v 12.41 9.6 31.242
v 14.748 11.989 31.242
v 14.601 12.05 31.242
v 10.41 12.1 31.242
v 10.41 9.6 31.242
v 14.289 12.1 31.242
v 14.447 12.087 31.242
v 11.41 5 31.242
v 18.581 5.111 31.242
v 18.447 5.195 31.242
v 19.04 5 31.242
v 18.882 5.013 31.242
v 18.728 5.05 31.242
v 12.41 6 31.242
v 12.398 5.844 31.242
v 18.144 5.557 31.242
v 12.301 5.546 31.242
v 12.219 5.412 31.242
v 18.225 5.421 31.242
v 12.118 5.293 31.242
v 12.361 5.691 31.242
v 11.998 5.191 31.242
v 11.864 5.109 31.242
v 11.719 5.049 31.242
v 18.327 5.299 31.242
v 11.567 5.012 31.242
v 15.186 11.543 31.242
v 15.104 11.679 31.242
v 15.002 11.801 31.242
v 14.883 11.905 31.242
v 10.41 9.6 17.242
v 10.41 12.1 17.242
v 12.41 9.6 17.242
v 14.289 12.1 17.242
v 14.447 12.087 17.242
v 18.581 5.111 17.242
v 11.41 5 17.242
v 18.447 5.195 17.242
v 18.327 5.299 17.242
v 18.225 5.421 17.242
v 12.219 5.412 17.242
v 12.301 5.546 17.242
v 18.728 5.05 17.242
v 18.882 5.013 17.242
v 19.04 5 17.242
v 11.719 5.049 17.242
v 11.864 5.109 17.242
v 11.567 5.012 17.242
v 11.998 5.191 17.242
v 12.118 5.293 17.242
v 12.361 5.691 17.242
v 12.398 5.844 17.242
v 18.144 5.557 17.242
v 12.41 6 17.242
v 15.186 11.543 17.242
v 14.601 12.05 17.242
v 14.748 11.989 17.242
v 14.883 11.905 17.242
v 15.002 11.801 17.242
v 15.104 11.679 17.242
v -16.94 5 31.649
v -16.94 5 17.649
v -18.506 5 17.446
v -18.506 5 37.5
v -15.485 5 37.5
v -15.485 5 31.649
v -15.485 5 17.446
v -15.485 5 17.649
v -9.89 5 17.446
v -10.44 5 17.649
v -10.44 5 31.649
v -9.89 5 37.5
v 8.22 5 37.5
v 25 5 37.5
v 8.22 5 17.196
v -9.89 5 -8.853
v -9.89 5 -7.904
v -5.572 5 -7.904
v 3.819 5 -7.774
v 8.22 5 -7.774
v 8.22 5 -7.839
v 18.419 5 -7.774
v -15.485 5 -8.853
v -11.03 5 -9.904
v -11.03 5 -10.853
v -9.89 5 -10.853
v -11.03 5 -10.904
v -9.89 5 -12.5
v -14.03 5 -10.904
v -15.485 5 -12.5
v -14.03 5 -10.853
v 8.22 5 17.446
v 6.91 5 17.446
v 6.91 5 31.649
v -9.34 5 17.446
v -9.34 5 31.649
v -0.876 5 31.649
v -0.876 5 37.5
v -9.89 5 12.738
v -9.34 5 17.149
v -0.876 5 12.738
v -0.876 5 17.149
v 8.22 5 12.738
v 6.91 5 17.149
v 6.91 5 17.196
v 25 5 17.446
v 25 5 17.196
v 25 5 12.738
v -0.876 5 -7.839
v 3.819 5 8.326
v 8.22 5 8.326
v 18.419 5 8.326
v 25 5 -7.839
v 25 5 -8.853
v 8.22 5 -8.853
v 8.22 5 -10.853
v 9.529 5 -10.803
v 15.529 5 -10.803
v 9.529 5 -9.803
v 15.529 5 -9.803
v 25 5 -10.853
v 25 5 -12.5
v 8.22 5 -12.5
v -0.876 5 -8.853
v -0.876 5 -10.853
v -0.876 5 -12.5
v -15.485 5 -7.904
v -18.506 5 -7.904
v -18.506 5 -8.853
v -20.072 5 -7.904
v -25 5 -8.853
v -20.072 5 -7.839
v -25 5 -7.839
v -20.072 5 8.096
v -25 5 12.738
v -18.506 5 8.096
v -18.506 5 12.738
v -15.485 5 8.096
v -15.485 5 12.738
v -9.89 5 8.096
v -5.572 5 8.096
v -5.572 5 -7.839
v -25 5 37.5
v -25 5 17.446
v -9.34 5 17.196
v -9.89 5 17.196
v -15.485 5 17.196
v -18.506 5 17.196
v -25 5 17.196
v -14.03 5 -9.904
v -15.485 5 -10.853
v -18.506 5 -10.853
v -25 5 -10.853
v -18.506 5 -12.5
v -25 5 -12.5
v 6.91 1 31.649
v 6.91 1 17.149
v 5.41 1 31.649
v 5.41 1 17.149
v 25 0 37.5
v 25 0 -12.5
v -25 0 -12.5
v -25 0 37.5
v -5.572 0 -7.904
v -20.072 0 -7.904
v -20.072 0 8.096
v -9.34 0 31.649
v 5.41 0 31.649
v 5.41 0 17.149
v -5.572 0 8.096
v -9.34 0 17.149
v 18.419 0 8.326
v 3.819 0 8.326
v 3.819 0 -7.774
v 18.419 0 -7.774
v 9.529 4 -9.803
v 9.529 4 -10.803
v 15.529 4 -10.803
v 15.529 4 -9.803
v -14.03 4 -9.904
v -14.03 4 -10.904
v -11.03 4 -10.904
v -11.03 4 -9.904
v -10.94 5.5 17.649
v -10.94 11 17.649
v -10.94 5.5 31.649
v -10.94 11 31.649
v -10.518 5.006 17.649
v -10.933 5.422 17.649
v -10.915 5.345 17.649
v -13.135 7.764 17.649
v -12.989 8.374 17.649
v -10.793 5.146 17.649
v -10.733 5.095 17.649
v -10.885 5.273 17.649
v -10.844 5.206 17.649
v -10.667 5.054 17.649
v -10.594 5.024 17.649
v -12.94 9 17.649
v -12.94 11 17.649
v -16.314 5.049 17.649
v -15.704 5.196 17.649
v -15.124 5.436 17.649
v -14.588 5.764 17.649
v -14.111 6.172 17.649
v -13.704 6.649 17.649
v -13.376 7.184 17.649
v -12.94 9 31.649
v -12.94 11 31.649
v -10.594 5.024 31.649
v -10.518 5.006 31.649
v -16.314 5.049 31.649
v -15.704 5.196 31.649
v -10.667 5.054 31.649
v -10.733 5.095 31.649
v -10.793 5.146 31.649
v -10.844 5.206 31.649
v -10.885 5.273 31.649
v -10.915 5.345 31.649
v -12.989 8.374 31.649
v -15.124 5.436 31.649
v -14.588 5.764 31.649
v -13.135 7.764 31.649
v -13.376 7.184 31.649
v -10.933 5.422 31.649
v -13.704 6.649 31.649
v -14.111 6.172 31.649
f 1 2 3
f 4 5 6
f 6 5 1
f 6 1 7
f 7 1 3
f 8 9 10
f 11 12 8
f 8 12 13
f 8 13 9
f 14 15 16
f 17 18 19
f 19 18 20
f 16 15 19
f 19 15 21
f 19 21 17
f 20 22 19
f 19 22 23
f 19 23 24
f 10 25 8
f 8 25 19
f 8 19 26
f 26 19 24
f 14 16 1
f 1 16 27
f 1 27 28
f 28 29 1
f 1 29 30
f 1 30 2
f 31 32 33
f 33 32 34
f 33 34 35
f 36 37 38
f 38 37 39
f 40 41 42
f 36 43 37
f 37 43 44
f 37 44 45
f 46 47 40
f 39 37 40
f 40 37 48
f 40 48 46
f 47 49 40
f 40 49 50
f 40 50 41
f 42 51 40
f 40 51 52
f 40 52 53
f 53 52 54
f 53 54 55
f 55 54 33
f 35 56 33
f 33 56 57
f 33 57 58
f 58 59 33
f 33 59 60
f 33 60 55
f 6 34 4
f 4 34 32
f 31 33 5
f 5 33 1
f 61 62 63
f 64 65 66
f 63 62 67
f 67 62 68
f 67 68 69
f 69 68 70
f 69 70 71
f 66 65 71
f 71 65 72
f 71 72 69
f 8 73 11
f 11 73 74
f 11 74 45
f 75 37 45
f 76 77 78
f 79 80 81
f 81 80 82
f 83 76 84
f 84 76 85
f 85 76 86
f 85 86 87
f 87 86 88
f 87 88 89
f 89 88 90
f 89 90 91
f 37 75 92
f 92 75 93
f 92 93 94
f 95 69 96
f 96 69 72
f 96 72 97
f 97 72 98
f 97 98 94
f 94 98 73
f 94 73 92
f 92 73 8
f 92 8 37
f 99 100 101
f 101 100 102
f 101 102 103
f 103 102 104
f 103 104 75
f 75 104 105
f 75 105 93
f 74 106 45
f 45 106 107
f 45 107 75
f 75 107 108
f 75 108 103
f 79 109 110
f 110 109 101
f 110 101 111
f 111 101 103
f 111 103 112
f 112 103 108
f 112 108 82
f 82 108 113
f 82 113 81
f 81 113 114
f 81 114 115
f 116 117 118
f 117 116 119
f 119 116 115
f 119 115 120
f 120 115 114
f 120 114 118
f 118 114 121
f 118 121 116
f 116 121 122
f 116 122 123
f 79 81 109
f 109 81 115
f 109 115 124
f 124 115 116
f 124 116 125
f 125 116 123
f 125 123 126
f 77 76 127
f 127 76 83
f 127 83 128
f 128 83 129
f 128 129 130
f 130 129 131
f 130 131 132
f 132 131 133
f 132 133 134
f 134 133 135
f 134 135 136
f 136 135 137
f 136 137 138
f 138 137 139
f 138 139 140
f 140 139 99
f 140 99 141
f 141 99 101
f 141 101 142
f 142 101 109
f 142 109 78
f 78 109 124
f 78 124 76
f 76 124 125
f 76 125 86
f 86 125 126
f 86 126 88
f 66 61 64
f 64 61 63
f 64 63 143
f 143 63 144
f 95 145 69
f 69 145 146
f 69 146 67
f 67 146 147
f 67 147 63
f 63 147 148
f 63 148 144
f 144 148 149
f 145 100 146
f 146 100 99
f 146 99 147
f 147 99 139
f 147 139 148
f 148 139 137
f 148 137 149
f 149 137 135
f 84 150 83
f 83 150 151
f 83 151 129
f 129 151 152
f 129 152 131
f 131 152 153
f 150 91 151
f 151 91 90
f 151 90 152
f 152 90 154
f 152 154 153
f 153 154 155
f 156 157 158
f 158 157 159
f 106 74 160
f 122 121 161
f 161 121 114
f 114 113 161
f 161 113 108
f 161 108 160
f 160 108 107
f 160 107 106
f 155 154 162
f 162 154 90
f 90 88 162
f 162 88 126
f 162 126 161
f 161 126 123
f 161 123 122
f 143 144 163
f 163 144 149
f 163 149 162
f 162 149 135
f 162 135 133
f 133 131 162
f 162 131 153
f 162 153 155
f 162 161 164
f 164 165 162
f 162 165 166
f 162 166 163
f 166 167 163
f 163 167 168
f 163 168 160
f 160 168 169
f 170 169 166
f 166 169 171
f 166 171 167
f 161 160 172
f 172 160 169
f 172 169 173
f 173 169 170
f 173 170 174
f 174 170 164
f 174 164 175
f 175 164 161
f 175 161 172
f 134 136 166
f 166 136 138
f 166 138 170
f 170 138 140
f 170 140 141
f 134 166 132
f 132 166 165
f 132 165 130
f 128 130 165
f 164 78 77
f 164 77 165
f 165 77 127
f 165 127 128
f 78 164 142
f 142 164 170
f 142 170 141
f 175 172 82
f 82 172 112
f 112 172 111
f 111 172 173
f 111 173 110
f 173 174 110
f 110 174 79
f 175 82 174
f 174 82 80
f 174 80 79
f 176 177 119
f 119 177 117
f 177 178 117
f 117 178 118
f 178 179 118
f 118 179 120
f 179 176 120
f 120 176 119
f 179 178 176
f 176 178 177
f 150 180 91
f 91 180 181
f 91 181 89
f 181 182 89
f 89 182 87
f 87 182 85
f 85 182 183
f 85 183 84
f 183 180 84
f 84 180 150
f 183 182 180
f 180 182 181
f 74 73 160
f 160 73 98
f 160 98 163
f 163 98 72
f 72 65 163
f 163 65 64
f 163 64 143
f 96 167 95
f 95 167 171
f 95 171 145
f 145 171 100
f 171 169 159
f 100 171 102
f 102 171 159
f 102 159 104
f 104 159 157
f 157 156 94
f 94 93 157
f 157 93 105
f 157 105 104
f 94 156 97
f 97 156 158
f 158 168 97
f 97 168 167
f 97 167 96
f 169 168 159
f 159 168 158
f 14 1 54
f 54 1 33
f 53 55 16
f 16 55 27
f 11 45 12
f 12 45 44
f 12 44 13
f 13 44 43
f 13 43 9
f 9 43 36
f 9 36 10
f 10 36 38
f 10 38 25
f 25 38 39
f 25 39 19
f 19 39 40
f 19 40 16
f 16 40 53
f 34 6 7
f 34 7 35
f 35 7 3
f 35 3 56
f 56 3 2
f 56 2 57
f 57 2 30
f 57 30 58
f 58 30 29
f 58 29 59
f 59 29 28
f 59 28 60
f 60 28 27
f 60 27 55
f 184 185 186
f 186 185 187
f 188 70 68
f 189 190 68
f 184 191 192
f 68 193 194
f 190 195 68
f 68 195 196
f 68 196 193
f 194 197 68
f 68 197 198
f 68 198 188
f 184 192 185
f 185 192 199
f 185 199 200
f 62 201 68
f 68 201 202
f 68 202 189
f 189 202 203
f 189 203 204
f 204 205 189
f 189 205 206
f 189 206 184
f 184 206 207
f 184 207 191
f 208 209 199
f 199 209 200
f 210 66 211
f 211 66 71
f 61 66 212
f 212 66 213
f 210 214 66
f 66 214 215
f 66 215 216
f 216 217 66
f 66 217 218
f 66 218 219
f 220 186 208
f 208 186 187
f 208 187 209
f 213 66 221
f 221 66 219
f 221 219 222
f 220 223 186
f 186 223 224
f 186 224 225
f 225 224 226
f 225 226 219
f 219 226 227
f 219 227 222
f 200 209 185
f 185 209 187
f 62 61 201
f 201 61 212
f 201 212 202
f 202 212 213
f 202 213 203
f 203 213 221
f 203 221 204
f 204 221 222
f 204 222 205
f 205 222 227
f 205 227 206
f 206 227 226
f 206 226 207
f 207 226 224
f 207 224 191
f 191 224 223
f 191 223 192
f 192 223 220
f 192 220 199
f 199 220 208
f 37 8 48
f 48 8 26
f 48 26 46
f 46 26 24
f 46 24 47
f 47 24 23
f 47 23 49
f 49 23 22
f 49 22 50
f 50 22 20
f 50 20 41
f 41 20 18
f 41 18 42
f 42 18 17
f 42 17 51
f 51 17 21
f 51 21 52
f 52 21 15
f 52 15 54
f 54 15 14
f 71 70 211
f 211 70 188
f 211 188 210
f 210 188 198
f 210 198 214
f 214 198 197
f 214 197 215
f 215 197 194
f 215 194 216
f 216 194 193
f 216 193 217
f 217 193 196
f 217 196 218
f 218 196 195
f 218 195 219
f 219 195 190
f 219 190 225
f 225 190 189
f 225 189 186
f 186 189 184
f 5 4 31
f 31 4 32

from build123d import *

# Parameters (mm, degrees)
SKETCH1_W           = 50
SKETCH1_H           = 25
BOSS_EXTRUDE1_DEPTH = 5
SKETCH2_W           = 14.5
SKETCH2_H           = 16
CUT_EXTRUDE1_DEPTH  = 5
SKETCH3_W           = 14.6
SKETCH3_H           = 16.1
CUT_EXTRUDE2_DEPTH  = 5
SKETCH5_W           = 3
SKETCH5_H           = 1
SKETCH5_W_2         = 6
CUT_EXTRUDE3_DEPTH  = 1
SKETCH6_W           = 50
SKETCH6_H           = 25
BOSS_EXTRUDE2_DEPTH = 5
SKETCH7_W           = 16.25
SKETCH7_H           = 14.5
CUT_EXTRUDE4_DEPTH  = 4
SKETCH8_W           = 14.75
SKETCH8_H           = 14.5
CUT_EXTRUDE5_DEPTH  = 1
SKETCH9_W           = 2.5
SKETCH9_H           = 14
BOSS_EXTRUDE3_DEPTH = 4.6
SKETCH10_W          = 5
SKETCH10_H          = 14
BOSS_EXTRUDE4_DEPTH = 2.5
BOSS_EXTRUDE5_DEPTH = 14
FILLET1_R           = 1
SKETCH12_W          = 2
SKETCH12_H          = 14
BOSS_EXTRUDE6_DEPTH = 6
FILLET2_R           = 4
FILLET3_R           = 1
FILLET4_R           = 0.5
SKETCH13_W          = 14
SKETCH13_H          = 2.5
CUT_EXTRUDE6_DEPTH  = 0.5


with BuildPart() as part:
    # Sketch1 → Boss-Extrude1 (new body)
    with BuildSketch(Plane(origin=(0, 0, 0), x_dir=(1, 0, 0), z_dir=(0, 1, 0))):
        Rectangle(SKETCH1_W, SKETCH1_H)
    extrude(amount=BOSS_EXTRUDE1_DEPTH)

    # Sketch2 → Cut-Extrude1 (cut)
    with BuildSketch(Plane(origin=(0, 5, 0), x_dir=(1, 0, 0), z_dir=(0, 1, 0))):
        with Locations((-12.821632497, -0.096290121)):
            Rectangle(SKETCH2_W, SKETCH2_H)
    extrude(amount=-CUT_EXTRUDE1_DEPTH, mode=Mode.SUBTRACT)

    # Sketch3 → Cut-Extrude2 (cut)
    with BuildSketch(Plane(origin=(0, 5, 0), x_dir=(1, 0, 0), z_dir=(0, 1, 0))):
        with Locations((11.118853314, -0.27633095)):
            Rectangle(SKETCH3_W, SKETCH3_H)
    extrude(amount=-CUT_EXTRUDE2_DEPTH, mode=Mode.SUBTRACT)

    # Sketch5 → Cut-Extrude3 (cut)
    with BuildSketch(Plane(origin=(0, 5, 0), x_dir=(1, 0, 0), z_dir=(0, 1, 0))):
        with Locations((-12.529830787, 10.403858803)):
            Rectangle(SKETCH5_W, SKETCH5_H)
        with Locations((12.528710417, 10.30293358)):
            Rectangle(SKETCH5_W_2, SKETCH5_H)
    extrude(amount=-CUT_EXTRUDE3_DEPTH, mode=Mode.SUBTRACT)

    # Sketch6 → Boss-Extrude2 (add)
    with BuildSketch(Plane(origin=(0, 0, 0), x_dir=(1, 0, 0), z_dir=(0, 1, 0))):
        with Locations((0, -25)):
            Rectangle(SKETCH6_W, SKETCH6_H)
    extrude(amount=BOSS_EXTRUDE2_DEPTH)

    # Sketch7 → Cut-Extrude4 (cut)
    with BuildSketch(Plane(origin=(0, 5, 0), x_dir=(1, 0, 0), z_dir=(0, 1, 0))):
        with Locations((-1.214601825, -24.398968546)):
            Rectangle(SKETCH7_W, SKETCH7_H)
    extrude(amount=-CUT_EXTRUDE4_DEPTH, mode=Mode.SUBTRACT)

    # Sketch8 → Cut-Extrude5 (cut)
    with BuildSketch(Plane(origin=(0, 1, 0), x_dir=(1, 0, 0), z_dir=(0, 1, 0))):
        with Locations((-1.964601825, -24.398968546)):
            Rectangle(SKETCH8_W, SKETCH8_H)
    extrude(amount=-CUT_EXTRUDE5_DEPTH, mode=Mode.SUBTRACT)

    # Sketch9 → Boss-Extrude3 (add)
    with BuildSketch(Plane(origin=(0, 5, 0), x_dir=(1, 0, 0), z_dir=(0, 1, 0))):
        with Locations((13.660398175, -24.242407708)):
            Rectangle(SKETCH9_W, SKETCH9_H)
    extrude(amount=BOSS_EXTRUDE3_DEPTH)

    # Sketch10 → Boss-Extrude4 (add)
    with BuildSketch(Plane(origin=(0, 9.6, 0), x_dir=(1, 0, 0), z_dir=(0, 1, 0))):
        with Locations((12.410398175, -24.242407708)):
            Rectangle(SKETCH10_W, SKETCH10_H)
    extrude(amount=BOSS_EXTRUDE4_DEPTH)

    # Sketch11 → Boss-Extrude5 (add)
    with BuildSketch(Plane.XY.offset(31.242407708)):
        Polygon((14.910398175, 5), (18.418853314, 5), (14.910398175, 12.1), align=None)
    extrude(amount=-BOSS_EXTRUDE5_DEPTH)

    # Fillet1
    fillet1_edges = [part.edges().sort_by_distance(p)[0] for p in [
        (14.910398175, 12.1, 24.242407708),
        (18.418853314, 5, 24.242407708),
    ]]
    fillet(fillet1_edges, radius=FILLET1_R)

    # Sketch12 → Boss-Extrude6 (add)
    with BuildSketch(Plane(origin=(0, 5, 0), x_dir=(1, 0, 0), z_dir=(0, 1, 0))):
        with Locations((-11.939601825, -24.648968546)):
            Rectangle(SKETCH12_W, SKETCH12_H)
    extrude(amount=BOSS_EXTRUDE6_DEPTH)

    # Fillet2
    fillet2_edges = [part.edges().sort_by_distance(p)[0] for p in [
        (-12.939601825, 5, 24.648968546),
    ]]
    fillet(fillet2_edges, radius=FILLET2_R)

    # Fillet3
    fillet3_edges = [part.edges().sort_by_distance(p)[0] for p in [
        (12.410398175, 5, 24.242407708),
    ]]
    fillet(fillet3_edges, radius=FILLET3_R)

    # Fillet4
    fillet4_edges = [part.edges().sort_by_distance(p)[0] for p in [
        (-10.939601825, 5, 24.648968546),
    ]]
    fillet(fillet4_edges, radius=FILLET4_R)

    # Sketch13 → Cut-Extrude6 (cut)
    with BuildSketch(Plane.ZY.offset(-9.910398175)):
        with Locations((24.242407708, 10.85)):
            Rectangle(SKETCH13_W, SKETCH13_H)
    extrude(amount=-CUT_EXTRUDE6_DEPTH, mode=Mode.SUBTRACT)


solid = part.part
